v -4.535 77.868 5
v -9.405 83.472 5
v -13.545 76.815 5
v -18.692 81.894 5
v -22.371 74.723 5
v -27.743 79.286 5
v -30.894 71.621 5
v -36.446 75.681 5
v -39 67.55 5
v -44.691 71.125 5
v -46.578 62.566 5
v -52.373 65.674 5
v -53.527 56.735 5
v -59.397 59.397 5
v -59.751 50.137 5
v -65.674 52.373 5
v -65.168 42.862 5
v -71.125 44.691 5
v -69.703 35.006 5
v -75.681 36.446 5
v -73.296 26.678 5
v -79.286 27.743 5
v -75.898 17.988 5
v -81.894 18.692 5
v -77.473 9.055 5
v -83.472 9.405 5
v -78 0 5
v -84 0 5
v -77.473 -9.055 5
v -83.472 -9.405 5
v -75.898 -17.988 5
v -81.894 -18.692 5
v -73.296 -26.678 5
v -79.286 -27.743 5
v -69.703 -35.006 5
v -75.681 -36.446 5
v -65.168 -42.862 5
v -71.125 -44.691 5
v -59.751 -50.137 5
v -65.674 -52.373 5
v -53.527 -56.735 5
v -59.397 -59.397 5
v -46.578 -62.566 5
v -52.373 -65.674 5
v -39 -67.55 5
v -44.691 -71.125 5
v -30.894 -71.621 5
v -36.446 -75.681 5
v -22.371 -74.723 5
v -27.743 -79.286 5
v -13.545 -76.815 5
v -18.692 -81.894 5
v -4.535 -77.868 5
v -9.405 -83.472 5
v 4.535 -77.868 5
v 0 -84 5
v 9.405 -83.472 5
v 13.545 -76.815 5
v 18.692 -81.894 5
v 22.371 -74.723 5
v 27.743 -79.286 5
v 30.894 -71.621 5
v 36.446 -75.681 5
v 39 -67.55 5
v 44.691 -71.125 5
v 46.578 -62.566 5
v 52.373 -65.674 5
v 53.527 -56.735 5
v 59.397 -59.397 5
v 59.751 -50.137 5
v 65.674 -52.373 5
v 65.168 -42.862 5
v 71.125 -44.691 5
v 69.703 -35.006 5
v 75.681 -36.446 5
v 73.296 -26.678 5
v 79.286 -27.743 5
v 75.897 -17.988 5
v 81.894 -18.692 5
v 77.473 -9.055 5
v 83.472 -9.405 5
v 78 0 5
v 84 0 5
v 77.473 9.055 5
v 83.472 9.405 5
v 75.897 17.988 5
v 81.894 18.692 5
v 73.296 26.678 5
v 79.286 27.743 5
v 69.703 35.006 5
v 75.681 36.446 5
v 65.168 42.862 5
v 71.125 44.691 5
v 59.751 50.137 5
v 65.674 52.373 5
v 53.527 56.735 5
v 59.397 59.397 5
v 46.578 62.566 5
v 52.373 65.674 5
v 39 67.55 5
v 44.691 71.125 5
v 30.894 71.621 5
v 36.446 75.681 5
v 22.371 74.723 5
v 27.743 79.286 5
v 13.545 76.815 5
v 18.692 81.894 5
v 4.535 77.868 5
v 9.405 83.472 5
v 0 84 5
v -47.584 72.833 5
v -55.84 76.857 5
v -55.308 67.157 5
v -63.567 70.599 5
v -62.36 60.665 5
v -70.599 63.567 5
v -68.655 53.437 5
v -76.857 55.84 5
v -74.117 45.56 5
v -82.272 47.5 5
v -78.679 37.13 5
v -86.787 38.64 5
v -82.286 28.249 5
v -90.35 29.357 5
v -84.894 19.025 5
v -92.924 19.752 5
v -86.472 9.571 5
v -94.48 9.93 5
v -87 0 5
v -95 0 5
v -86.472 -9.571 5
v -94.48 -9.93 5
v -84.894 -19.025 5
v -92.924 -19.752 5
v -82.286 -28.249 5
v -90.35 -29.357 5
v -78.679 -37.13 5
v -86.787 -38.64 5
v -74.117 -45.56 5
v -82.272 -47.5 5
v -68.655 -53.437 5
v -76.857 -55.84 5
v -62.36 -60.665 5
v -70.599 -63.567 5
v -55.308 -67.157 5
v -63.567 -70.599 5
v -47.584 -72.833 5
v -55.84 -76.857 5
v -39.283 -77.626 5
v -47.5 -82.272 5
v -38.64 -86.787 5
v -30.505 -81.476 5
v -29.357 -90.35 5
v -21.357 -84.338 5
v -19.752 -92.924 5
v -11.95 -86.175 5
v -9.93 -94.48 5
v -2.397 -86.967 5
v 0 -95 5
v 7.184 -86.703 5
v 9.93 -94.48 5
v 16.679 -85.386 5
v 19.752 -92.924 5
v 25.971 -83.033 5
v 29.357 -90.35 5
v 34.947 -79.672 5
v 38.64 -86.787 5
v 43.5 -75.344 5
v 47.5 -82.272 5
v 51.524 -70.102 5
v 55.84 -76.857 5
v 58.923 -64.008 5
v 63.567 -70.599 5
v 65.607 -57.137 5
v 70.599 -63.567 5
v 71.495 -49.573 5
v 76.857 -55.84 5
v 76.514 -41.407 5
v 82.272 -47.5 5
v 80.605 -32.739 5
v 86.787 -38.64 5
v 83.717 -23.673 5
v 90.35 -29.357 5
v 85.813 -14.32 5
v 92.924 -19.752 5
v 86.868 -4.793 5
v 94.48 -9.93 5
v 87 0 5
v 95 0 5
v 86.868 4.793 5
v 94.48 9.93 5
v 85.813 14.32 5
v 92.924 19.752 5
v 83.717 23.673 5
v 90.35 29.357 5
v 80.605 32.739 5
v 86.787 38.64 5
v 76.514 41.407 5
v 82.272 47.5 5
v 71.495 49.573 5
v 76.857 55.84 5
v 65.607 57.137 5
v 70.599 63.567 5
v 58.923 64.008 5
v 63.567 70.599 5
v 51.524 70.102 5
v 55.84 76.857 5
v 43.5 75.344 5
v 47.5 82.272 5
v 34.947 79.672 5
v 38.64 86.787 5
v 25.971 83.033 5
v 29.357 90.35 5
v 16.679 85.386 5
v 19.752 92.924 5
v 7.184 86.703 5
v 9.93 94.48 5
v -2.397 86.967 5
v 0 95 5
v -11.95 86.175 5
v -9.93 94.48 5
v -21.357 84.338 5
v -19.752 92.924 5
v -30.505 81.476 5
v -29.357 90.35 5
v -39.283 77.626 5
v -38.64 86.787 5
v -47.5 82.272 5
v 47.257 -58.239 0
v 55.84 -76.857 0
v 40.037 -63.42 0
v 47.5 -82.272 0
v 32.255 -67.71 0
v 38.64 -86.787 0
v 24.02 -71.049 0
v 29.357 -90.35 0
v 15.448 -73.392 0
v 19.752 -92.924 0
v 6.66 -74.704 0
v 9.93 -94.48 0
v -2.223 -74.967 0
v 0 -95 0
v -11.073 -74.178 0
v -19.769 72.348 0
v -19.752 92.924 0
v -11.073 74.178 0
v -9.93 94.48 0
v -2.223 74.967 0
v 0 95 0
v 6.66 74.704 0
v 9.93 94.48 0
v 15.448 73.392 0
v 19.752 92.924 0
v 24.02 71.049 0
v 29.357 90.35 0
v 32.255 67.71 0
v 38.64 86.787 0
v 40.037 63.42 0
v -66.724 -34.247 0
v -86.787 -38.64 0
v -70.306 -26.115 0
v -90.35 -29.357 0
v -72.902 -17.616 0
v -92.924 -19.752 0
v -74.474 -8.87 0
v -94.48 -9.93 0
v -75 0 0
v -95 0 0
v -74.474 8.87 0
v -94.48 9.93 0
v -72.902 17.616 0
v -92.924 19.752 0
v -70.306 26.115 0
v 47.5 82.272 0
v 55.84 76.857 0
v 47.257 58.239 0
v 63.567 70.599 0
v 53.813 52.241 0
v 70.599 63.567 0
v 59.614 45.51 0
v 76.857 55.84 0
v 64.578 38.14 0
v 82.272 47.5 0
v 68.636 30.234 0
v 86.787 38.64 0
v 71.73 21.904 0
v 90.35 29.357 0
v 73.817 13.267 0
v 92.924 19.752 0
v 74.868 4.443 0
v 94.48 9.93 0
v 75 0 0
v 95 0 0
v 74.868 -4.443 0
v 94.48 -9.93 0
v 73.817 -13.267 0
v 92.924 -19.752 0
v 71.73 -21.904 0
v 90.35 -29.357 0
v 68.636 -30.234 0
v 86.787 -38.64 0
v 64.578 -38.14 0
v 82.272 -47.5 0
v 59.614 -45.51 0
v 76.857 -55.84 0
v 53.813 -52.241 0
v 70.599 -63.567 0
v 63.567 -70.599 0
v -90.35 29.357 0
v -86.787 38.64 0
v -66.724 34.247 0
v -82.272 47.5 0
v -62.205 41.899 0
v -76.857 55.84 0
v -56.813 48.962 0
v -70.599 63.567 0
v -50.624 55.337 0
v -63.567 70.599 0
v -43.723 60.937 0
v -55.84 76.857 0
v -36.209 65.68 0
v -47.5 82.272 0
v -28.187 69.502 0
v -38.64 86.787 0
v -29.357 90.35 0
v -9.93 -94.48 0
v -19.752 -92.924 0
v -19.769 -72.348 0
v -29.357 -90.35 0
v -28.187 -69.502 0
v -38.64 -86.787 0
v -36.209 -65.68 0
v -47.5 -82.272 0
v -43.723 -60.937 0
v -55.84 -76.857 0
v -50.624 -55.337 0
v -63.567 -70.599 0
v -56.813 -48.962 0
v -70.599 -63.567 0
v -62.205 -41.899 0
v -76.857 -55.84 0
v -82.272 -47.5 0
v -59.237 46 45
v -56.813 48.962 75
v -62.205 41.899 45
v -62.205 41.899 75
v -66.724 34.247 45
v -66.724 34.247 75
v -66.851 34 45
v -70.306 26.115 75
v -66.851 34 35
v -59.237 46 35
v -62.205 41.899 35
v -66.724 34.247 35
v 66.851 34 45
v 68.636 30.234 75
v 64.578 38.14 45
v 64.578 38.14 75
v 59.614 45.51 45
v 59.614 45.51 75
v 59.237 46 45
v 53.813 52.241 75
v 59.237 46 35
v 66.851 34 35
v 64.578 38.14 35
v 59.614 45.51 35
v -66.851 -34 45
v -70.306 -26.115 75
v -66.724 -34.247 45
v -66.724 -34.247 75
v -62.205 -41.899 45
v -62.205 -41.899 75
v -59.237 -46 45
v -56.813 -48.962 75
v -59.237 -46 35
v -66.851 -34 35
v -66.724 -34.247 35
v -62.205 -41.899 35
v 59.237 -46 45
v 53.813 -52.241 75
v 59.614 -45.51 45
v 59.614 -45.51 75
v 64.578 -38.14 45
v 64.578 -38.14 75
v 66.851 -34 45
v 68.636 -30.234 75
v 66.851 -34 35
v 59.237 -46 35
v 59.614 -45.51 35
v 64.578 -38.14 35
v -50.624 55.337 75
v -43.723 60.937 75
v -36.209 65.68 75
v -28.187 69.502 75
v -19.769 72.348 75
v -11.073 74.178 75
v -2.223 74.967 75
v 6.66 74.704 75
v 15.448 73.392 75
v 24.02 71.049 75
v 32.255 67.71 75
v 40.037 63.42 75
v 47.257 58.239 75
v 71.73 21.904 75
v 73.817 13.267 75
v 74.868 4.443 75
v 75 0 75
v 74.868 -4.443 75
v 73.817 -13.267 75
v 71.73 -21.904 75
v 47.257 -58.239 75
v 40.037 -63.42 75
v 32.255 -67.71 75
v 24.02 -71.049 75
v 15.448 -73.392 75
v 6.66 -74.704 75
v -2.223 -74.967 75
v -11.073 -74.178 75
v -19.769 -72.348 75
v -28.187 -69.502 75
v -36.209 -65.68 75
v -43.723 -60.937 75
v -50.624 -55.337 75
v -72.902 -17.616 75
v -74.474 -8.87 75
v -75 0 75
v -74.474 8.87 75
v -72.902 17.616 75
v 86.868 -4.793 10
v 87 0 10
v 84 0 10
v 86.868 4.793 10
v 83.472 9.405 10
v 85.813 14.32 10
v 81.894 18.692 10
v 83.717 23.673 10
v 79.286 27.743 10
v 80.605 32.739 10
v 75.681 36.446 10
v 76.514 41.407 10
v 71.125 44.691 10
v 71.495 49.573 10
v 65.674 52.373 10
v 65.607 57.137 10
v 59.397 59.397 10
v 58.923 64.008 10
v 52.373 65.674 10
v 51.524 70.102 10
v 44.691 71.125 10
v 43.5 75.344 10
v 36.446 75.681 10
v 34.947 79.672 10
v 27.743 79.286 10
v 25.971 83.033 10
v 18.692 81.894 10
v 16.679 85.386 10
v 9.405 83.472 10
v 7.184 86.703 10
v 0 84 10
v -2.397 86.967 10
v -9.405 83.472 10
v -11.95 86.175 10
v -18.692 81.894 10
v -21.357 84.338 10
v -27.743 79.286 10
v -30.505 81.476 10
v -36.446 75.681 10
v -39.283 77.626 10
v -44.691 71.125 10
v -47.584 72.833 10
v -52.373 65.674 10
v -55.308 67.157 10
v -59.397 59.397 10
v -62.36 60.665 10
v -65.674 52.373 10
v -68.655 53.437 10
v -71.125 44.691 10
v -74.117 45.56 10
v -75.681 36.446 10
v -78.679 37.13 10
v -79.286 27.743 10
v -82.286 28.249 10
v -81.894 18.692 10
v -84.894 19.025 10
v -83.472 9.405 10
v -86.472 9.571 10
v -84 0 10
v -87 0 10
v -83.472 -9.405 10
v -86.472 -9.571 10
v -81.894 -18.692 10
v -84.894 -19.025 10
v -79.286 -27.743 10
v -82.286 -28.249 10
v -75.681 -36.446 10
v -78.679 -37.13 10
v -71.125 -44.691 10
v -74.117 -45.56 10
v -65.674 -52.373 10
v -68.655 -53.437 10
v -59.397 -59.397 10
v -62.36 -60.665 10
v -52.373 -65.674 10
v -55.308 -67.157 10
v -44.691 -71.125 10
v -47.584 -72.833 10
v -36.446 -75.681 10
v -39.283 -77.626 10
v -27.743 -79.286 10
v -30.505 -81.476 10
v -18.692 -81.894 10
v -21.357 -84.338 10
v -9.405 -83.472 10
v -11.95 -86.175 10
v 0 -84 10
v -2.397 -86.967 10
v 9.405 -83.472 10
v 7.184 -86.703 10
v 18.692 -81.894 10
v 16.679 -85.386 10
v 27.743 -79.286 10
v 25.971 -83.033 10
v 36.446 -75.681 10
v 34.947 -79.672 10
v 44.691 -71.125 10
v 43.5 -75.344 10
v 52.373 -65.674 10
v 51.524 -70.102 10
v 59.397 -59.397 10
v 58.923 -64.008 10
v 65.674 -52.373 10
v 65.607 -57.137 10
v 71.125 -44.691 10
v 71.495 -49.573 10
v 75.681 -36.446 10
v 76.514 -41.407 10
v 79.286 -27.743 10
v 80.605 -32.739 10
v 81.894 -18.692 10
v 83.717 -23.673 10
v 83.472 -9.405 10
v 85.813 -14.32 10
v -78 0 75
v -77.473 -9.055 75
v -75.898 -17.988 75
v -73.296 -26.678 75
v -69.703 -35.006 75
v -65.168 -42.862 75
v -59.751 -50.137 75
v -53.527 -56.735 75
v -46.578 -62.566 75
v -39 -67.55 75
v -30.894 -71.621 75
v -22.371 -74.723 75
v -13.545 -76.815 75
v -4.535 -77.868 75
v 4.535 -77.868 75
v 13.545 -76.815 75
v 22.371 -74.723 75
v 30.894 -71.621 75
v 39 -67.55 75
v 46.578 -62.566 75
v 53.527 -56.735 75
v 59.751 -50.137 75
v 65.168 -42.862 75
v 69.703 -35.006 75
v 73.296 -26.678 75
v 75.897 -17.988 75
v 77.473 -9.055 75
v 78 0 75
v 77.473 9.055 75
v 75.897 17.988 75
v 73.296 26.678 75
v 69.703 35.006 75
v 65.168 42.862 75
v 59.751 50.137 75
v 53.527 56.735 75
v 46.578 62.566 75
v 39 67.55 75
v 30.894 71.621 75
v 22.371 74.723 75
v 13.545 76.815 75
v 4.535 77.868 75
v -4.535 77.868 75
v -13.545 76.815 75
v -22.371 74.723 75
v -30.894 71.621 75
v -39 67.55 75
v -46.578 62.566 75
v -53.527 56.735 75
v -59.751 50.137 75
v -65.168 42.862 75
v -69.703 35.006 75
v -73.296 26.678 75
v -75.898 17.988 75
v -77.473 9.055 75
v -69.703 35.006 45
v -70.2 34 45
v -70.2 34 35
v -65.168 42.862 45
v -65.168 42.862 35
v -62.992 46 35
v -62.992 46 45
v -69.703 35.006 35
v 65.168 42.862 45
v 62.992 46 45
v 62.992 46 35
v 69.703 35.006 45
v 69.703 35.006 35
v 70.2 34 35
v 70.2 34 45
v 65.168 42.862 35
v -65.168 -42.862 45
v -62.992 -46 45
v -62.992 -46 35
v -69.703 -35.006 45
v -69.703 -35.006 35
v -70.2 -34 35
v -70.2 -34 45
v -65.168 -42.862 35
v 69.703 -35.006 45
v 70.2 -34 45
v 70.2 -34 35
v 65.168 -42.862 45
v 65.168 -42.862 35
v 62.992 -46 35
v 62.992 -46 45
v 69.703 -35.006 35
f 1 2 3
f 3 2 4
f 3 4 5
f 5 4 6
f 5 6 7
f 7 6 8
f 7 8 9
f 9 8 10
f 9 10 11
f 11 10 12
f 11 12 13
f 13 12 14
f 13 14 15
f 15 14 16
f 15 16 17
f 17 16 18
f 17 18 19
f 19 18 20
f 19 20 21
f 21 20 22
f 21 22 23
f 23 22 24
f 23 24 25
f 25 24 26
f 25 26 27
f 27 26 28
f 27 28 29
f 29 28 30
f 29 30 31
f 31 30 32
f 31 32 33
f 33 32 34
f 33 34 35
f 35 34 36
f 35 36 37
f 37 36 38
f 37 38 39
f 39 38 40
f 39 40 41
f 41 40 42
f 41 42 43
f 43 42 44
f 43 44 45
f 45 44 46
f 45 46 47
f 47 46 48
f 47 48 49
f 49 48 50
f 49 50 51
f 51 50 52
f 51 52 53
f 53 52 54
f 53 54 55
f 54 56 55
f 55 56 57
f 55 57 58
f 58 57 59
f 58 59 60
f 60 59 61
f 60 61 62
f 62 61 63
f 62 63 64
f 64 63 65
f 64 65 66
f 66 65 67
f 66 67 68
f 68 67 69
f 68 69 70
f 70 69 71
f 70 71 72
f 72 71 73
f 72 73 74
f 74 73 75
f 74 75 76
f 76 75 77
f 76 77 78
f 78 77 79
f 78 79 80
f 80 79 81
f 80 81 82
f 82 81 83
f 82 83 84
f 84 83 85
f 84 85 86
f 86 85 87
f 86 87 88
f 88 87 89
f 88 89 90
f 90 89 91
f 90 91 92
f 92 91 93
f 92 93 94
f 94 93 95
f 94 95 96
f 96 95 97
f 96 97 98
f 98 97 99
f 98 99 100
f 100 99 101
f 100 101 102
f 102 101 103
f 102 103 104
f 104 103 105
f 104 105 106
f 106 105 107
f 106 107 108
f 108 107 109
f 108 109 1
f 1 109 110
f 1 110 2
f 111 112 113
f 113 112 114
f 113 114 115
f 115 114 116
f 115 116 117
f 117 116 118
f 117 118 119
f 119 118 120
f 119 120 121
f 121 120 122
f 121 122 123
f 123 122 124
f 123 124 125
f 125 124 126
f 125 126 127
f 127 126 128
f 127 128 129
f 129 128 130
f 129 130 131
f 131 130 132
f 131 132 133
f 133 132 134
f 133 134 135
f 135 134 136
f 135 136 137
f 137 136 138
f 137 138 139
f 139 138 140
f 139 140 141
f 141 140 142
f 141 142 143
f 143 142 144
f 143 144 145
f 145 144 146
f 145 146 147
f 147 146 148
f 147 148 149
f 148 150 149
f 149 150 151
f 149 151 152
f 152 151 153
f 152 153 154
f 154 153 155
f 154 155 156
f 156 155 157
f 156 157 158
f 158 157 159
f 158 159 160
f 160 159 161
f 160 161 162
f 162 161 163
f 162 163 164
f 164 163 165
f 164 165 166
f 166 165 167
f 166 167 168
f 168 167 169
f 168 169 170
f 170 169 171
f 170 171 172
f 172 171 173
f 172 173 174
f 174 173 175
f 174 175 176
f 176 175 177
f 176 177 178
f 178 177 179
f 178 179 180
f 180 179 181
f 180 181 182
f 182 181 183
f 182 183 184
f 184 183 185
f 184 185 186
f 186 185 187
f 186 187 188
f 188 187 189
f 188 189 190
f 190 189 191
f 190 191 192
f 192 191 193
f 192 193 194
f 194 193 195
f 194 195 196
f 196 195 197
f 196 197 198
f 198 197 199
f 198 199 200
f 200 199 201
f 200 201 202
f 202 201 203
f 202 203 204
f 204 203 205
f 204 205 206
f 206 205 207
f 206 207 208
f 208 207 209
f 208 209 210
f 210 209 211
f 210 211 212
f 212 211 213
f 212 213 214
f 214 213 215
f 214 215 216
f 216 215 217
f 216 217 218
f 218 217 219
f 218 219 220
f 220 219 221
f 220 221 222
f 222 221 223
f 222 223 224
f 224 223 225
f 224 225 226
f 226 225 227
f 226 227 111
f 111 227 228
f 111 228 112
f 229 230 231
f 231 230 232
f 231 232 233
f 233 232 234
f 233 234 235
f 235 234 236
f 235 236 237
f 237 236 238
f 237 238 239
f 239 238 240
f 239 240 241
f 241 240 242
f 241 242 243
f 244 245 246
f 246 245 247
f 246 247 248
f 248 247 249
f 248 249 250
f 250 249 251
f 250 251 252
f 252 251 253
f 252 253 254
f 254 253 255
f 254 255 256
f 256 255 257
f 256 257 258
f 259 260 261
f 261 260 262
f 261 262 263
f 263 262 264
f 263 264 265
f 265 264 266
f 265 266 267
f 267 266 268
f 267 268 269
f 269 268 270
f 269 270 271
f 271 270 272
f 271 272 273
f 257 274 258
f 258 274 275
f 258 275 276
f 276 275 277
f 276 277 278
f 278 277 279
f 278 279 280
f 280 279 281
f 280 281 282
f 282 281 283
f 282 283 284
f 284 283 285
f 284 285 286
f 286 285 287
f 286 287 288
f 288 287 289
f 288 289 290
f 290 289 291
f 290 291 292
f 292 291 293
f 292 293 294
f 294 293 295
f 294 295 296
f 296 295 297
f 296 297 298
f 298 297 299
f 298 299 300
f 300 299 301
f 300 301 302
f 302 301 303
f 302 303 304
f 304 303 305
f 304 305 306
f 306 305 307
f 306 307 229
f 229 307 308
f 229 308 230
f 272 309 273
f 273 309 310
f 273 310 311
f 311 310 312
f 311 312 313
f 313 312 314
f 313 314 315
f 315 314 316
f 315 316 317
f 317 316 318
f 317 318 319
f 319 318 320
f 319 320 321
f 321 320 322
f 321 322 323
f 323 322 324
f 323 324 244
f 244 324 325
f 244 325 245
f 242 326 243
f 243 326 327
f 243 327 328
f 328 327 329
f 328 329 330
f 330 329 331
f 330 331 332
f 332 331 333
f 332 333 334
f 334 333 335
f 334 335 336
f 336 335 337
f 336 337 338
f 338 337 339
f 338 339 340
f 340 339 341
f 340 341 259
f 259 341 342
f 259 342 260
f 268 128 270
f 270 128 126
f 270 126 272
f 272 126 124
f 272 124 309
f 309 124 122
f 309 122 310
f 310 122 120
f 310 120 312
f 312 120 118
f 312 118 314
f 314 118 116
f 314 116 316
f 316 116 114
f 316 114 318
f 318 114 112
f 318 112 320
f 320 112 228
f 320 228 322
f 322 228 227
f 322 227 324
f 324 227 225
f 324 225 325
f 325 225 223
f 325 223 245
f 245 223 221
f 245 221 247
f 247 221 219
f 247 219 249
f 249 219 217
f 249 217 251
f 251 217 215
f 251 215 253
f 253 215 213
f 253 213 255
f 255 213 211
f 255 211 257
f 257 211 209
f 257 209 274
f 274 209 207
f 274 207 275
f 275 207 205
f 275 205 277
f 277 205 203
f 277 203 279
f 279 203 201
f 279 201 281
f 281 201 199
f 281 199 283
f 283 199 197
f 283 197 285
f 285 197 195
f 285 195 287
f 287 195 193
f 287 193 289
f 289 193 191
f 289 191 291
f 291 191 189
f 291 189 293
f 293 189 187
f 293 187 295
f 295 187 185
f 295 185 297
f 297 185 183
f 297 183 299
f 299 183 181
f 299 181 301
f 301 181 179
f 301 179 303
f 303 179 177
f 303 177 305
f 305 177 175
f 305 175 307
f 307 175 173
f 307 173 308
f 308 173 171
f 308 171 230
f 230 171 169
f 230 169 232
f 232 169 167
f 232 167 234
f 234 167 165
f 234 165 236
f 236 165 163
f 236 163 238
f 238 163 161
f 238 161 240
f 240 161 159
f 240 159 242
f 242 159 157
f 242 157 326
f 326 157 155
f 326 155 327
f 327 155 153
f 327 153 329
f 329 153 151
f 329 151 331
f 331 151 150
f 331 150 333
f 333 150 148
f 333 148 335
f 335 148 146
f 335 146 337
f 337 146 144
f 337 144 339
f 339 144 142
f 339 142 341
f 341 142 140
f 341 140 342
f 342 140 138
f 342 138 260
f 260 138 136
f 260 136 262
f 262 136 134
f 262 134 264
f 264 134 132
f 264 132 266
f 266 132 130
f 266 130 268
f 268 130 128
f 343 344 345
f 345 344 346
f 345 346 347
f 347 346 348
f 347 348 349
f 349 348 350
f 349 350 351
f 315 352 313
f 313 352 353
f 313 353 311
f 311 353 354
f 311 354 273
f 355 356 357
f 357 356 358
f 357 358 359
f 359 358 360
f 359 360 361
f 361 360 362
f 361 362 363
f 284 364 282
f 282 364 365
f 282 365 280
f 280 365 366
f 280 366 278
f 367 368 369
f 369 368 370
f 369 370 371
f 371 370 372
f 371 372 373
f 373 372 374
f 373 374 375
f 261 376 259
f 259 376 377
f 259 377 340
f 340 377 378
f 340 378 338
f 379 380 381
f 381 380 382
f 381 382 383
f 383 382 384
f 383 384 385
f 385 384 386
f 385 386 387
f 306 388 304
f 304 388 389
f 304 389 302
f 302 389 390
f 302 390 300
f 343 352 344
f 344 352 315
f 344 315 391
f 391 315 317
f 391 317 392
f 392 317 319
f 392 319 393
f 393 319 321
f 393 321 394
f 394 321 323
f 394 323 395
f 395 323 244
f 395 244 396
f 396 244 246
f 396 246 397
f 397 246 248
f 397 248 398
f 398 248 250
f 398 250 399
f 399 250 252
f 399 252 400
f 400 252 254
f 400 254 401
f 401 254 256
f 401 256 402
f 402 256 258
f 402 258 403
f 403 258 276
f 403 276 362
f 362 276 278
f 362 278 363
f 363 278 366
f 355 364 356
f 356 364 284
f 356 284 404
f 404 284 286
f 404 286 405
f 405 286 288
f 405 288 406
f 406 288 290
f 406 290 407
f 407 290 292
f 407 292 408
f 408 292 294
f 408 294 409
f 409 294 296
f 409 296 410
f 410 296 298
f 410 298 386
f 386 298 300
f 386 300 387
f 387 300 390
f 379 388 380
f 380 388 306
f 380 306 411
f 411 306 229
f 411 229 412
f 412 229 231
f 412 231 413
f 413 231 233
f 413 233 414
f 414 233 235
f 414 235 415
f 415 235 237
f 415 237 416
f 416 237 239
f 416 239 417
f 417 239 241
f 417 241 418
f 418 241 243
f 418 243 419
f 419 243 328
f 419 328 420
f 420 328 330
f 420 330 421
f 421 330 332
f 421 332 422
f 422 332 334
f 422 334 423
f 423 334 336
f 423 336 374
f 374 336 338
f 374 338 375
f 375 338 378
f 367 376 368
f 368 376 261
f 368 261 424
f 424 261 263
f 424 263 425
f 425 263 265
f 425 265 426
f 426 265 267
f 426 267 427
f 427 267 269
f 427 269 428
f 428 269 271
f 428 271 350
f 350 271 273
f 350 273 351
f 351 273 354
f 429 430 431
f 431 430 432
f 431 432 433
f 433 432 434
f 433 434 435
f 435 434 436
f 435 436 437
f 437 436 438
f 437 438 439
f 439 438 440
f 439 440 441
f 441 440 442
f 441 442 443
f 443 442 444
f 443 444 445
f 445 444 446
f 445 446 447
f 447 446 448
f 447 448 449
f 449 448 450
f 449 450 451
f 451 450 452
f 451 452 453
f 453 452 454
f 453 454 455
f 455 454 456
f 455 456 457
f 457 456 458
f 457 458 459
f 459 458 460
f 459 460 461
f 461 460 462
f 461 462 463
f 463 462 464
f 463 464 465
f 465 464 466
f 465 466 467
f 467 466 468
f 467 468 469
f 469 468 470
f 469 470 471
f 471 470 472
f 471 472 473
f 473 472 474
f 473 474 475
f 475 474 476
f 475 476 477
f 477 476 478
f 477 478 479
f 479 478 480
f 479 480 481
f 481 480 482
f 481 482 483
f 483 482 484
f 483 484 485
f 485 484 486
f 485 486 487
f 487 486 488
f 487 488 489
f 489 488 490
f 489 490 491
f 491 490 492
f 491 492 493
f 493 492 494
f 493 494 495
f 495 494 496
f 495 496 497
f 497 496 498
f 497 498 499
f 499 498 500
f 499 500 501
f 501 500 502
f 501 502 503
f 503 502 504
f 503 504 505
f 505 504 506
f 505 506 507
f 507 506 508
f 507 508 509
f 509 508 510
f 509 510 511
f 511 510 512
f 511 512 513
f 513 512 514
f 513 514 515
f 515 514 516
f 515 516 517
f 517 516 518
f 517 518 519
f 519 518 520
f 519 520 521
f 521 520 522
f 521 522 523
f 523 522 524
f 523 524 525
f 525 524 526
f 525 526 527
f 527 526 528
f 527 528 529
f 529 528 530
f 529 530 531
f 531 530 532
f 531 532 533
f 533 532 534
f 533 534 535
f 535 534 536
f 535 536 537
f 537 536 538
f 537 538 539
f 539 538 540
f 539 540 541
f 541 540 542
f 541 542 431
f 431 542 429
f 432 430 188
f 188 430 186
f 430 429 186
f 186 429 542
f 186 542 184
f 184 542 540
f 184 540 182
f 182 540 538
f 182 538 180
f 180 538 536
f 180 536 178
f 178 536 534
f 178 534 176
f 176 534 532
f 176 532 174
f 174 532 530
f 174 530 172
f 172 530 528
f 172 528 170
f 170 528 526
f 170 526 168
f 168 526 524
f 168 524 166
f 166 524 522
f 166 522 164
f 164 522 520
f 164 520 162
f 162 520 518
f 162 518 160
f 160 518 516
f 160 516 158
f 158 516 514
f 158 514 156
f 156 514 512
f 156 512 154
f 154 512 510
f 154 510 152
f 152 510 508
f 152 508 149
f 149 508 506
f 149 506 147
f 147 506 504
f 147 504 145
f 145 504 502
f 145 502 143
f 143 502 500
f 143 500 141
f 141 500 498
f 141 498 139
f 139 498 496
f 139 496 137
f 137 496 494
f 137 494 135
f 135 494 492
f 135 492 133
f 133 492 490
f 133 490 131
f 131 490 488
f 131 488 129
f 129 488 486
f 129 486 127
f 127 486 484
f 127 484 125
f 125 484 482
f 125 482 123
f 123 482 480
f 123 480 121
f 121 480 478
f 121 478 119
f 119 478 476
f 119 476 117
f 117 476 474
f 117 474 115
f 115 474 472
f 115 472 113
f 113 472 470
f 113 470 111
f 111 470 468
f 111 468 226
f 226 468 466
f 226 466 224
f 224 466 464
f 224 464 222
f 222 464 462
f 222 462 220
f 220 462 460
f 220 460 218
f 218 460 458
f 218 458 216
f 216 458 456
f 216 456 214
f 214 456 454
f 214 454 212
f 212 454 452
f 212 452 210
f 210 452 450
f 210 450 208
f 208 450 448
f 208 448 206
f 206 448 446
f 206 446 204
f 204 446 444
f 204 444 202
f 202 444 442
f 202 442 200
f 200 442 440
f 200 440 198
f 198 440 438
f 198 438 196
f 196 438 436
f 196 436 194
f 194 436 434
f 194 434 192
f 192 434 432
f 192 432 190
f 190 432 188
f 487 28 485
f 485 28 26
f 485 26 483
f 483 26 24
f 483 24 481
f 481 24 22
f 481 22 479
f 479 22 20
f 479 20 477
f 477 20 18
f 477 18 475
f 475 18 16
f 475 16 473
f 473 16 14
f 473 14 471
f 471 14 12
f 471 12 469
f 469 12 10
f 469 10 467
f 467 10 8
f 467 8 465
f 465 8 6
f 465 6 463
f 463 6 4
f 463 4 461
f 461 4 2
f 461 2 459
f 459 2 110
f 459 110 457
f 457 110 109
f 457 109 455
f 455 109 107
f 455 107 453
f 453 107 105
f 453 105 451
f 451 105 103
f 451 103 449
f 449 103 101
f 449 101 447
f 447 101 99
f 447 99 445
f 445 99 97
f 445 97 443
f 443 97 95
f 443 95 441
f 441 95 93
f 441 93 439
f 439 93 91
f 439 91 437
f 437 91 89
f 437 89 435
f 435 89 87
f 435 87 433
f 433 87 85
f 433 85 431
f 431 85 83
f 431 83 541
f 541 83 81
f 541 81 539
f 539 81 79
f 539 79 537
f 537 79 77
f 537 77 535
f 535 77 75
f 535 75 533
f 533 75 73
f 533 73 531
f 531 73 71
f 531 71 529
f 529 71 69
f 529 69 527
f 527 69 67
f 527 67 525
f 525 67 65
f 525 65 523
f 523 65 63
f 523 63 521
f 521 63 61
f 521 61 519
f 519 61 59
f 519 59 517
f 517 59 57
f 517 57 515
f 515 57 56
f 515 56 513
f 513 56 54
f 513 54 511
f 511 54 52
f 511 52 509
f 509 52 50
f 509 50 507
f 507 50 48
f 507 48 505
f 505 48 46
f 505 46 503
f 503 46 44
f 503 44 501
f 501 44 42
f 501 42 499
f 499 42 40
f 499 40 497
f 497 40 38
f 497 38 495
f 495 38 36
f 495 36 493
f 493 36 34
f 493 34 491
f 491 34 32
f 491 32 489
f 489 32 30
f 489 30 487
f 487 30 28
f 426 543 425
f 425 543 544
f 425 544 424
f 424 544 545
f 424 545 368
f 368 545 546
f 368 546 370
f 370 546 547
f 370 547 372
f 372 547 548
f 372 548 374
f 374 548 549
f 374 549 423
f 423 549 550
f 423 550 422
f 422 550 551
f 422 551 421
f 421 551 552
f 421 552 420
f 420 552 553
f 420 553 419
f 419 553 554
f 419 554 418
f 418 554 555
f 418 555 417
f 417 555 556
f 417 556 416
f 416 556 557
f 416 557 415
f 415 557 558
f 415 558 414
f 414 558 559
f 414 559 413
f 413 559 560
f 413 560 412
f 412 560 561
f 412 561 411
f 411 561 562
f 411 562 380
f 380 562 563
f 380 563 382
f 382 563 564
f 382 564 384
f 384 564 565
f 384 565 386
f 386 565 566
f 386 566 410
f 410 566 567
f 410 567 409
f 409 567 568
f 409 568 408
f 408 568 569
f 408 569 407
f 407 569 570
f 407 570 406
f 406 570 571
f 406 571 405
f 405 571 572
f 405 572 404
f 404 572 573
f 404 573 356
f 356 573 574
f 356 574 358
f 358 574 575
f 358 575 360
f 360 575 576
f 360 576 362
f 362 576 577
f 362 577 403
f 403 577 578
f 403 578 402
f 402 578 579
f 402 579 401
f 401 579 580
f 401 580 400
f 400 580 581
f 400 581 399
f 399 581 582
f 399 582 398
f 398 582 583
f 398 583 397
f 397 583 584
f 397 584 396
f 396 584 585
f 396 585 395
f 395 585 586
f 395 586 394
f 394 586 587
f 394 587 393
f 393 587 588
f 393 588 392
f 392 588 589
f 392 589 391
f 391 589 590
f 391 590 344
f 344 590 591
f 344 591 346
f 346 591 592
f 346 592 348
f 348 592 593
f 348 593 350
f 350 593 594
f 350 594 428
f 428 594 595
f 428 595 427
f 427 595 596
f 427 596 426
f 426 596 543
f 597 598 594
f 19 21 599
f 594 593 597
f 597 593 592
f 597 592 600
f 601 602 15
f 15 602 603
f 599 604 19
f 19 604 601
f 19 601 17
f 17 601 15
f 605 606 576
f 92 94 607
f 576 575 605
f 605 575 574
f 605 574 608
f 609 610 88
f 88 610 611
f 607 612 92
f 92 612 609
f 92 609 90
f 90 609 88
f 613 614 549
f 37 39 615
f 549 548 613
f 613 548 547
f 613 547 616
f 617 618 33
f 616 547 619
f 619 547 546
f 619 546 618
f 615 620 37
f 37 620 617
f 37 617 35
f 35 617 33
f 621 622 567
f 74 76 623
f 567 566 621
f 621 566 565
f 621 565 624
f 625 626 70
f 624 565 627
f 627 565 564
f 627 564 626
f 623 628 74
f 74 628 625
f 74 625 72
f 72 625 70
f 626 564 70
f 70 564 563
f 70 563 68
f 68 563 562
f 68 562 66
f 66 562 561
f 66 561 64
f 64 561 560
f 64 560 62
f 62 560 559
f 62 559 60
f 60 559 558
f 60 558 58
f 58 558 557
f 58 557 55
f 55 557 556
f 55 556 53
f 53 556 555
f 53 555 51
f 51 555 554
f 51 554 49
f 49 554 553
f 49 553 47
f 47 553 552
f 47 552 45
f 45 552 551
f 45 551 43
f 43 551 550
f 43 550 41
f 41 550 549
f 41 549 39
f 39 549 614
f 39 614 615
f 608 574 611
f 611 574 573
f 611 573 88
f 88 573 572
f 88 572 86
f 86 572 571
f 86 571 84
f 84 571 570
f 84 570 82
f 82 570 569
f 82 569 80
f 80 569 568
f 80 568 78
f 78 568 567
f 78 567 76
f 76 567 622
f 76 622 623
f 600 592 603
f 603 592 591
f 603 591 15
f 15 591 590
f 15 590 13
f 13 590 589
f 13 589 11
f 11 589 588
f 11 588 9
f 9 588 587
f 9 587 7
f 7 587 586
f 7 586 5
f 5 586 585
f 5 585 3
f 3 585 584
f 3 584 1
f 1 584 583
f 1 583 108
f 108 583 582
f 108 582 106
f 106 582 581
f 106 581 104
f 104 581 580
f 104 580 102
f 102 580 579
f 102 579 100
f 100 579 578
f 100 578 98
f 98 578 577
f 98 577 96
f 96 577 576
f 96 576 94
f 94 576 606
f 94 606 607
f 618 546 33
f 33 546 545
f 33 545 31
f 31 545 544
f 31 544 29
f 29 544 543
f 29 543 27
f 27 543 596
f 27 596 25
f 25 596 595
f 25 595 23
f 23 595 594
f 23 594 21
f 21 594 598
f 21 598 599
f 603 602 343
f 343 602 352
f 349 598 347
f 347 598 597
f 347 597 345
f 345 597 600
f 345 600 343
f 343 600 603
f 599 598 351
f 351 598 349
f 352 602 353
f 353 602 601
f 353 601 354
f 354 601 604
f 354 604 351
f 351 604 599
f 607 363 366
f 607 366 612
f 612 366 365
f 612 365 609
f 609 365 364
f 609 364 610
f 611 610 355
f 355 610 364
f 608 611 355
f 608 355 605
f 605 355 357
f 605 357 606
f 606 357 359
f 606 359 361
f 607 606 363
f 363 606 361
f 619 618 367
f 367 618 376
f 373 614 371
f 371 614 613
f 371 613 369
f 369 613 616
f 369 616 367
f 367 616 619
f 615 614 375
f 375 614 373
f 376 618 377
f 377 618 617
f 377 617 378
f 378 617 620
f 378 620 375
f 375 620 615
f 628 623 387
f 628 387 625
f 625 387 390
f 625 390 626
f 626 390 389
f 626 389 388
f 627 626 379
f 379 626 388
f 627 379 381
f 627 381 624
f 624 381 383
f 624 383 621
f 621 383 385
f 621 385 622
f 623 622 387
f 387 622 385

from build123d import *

# Parameters (mm, degrees)
SKETCH2_R               = 95
SKETCH2_R_2             = 75
BOSS_EXTRUDE1_DEPTH     = 5
SKETCH3_R               = 87
SKETCH3_R_2             = 84
BOSS_EXTRUDE2_DEPTH     = 10
SKETCH4_R               = 78
SKETCH4_R_2             = 75
BOSS_EXTRUDE3_DEPTH     = 70
CUT_EXTRUDE3_DEPTH      = 161.23420359
CUT_EXTRUDE3_DEPTH_BACK = 161.23420359
SKETCH6_W               = 10
SKETCH6_H               = 12
CUT_EXTRUDE4_DEPTH      = 161.23420359
CUT_EXTRUDE4_DEPTH_BACK = 161.23420359
SKETCH7_W               = 10
SKETCH7_H               = 12


with BuildPart() as part:
    # Sketch2 → Boss-Extrude1 (new body)
    with BuildSketch(Plane.XY):
        Circle(SKETCH2_R)
        Circle(SKETCH2_R_2, mode=Mode.SUBTRACT)
    extrude(amount=BOSS_EXTRUDE1_DEPTH)

    # Sketch3 → Boss-Extrude2 (add)
    with BuildSketch(Plane.XY):
        Circle(SKETCH3_R)
        Circle(SKETCH3_R_2, mode=Mode.SUBTRACT)
    extrude(amount=BOSS_EXTRUDE2_DEPTH)

    # Sketch4 → Boss-Extrude3 (add)
    with BuildSketch(Plane.XY.offset(5)):
        Circle(SKETCH4_R)
        Circle(SKETCH4_R_2, mode=Mode.SUBTRACT)
    extrude(amount=BOSS_EXTRUDE3_DEPTH)

    # Sketch6 → Cut-Extrude3 (cut, two sides: drawn at the far end of the back side and taken through both)
    with BuildSketch(Plane(origin=(10, 0, 0), x_dir=(0, 0, -1), z_dir=(1, 0, 0)).offset(-CUT_EXTRUDE3_DEPTH_BACK)):
        with Locations((-40, 40)):
            Rectangle(SKETCH6_W, SKETCH6_H)
    extrude(amount=CUT_EXTRUDE3_DEPTH + CUT_EXTRUDE3_DEPTH_BACK, mode=Mode.SUBTRACT)

    # Sketch7 → Cut-Extrude4 (cut, two sides: drawn at the far end of the back side and taken through both)
    with BuildSketch(Plane(origin=(10, 0, 0), x_dir=(0, 0, -1), z_dir=(1, 0, 0)).offset(-CUT_EXTRUDE4_DEPTH_BACK)):
        with Locations((-40, -40)):
            Rectangle(SKETCH7_W, SKETCH7_H)
    extrude(amount=CUT_EXTRUDE4_DEPTH + CUT_EXTRUDE4_DEPTH_BACK, mode=Mode.SUBTRACT)


solid = part.part
